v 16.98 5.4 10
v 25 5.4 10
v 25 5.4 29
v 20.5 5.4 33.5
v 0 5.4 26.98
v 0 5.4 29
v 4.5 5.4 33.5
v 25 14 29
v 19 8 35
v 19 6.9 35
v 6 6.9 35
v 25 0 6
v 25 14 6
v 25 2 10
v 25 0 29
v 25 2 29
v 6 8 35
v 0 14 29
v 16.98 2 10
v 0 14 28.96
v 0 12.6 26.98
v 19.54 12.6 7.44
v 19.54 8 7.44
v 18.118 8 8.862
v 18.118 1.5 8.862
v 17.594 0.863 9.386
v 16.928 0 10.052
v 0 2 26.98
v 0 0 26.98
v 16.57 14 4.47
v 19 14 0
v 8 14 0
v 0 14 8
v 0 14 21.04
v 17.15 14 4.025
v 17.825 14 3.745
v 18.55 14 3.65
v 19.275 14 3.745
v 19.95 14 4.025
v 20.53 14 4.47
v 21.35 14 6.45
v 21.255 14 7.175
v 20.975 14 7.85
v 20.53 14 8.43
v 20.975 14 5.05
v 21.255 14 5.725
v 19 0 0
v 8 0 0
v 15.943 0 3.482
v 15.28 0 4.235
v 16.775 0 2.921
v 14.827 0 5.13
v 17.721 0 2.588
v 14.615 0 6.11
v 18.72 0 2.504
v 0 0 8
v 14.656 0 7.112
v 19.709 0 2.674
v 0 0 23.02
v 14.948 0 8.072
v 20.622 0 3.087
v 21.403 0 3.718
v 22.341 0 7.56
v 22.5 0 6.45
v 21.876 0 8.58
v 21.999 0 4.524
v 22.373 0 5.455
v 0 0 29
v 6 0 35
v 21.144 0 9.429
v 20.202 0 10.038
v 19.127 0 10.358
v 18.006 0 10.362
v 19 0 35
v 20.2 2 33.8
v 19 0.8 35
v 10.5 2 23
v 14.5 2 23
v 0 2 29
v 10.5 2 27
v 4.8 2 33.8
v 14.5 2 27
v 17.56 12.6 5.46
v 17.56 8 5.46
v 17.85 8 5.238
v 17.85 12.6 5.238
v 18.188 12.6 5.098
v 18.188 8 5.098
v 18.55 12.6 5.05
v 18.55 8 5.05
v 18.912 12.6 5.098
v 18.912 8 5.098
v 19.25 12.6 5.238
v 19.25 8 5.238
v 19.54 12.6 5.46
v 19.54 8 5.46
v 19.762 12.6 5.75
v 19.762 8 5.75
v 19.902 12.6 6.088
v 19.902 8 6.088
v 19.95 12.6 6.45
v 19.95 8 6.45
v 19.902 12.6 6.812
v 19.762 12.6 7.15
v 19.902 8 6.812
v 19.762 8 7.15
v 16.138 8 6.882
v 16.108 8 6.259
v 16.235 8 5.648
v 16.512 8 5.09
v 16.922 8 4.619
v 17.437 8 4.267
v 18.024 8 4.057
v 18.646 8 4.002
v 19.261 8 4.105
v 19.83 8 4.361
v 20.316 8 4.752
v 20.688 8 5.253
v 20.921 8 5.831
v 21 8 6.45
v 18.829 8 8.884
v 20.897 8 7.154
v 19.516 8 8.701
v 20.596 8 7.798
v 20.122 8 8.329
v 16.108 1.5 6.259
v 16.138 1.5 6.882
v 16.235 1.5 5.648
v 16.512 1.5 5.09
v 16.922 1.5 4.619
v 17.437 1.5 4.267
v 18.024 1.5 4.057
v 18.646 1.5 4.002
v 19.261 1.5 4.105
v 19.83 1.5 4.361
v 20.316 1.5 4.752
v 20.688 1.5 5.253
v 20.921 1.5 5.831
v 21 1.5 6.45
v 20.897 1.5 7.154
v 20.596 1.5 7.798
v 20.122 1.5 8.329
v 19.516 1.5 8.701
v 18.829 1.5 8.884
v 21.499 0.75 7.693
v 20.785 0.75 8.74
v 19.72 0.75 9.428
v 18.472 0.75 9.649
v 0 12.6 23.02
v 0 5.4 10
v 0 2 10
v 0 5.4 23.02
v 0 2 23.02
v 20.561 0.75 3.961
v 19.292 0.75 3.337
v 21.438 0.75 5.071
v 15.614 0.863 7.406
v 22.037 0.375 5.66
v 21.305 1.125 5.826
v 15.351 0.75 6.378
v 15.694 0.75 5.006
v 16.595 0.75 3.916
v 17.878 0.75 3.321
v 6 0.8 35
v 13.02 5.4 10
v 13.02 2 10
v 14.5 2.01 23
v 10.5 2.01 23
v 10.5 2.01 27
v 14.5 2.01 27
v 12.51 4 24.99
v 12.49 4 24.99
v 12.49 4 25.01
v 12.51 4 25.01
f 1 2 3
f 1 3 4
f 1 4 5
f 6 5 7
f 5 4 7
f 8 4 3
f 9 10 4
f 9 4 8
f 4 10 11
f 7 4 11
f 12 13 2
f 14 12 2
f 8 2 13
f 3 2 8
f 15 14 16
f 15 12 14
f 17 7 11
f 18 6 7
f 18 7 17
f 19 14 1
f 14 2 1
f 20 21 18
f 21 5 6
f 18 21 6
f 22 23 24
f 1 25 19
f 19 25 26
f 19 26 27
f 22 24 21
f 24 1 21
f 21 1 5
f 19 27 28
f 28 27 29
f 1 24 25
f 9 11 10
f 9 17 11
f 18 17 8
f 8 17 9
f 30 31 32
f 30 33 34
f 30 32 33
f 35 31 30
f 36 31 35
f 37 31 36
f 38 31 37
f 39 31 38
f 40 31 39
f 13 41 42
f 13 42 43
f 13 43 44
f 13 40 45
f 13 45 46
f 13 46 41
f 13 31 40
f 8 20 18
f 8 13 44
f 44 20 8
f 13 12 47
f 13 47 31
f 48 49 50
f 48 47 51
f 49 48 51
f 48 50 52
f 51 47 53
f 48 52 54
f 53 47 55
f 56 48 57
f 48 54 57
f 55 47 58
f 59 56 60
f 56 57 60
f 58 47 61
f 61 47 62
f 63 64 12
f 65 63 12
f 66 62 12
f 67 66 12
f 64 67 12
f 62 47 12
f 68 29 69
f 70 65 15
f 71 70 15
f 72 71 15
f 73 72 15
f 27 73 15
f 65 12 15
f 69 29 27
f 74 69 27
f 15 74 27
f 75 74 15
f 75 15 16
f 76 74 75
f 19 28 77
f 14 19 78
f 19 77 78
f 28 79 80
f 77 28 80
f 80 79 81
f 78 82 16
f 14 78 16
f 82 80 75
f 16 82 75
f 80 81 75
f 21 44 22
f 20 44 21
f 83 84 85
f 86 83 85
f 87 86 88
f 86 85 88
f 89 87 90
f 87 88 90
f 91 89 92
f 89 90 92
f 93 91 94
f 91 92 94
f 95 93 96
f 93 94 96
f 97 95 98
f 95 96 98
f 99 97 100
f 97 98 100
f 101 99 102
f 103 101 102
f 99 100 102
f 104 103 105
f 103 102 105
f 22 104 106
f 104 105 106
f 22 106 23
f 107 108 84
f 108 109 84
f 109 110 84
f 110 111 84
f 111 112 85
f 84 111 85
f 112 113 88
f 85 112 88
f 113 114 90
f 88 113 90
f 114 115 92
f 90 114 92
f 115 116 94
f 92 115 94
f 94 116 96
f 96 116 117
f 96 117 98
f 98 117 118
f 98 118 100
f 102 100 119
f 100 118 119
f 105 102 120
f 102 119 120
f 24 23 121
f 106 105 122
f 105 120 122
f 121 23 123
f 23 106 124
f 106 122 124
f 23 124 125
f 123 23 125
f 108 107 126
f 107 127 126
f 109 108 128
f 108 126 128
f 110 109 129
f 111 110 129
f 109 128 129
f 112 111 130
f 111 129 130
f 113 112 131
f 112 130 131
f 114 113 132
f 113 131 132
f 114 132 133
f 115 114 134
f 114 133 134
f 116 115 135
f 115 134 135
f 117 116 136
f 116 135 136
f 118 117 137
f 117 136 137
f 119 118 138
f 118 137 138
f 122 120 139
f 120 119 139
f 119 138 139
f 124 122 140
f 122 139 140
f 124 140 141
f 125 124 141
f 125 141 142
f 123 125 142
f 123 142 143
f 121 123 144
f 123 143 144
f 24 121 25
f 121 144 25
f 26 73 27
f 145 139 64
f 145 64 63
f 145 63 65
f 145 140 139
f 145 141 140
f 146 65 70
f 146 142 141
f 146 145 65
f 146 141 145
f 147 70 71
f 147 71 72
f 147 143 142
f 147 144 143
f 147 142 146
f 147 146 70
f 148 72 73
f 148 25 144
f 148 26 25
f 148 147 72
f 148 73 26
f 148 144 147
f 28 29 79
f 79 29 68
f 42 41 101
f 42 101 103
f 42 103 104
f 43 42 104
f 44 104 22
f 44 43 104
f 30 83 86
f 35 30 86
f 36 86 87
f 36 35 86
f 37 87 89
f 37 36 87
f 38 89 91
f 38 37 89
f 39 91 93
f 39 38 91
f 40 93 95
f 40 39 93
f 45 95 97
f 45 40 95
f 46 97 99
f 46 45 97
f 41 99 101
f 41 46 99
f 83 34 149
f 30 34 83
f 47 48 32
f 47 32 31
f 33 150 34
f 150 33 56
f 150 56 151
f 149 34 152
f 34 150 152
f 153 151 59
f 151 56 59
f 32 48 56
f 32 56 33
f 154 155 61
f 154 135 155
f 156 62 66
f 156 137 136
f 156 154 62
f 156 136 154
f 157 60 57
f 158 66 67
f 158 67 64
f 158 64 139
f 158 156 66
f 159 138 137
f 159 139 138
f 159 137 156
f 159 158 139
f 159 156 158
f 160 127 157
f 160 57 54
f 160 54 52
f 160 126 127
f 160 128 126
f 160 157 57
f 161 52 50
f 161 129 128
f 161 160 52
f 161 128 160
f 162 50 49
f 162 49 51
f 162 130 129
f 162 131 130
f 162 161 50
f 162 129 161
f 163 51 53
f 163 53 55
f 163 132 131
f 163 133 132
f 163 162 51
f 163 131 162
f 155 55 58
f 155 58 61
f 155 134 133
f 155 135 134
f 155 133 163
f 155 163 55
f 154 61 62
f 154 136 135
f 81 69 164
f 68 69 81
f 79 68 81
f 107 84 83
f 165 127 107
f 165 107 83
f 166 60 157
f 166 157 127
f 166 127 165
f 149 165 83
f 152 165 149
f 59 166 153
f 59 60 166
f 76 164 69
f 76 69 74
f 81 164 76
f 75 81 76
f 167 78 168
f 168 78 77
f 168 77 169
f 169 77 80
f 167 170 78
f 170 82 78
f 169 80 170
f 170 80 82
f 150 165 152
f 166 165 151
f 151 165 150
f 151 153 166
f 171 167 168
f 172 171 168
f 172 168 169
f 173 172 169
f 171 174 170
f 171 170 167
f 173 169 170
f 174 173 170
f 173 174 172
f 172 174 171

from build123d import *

# Parameters (mm, degrees)
BOX_W           = 25
BOX_H           = 14
BOX_DEPTH       = 35
SKETCH_W        = 25
SKETCH_H        = 3.4
POCKET_DEPTH    = 25
SKETCH001_R     = 2.45
POCKET001_DEPTH = 8
SKETCH002_R     = 1.4
POCKET002_DEPTH = 6.001
SKETCH003_W     = 4
SKETCH003_H     = 4
PAD_DEPTH       = 4
CHAMFER_SIZE    = 1.99
POCKET003_DEPTH = 17
CHAMFER001_SIZE = 8
CHAMFER002_SIZE = 6
CHAMFER003_SIZE = 6
CHAMFER004_SIZE = 1.5
CHAMFER005_SIZE = 1.4
CHAMFER006_SIZE = 1.2
CHAMFER007_SIZE = 1.5


with BuildPart() as pocket002:
    # Box → Box (new body)
    with BuildSketch(Plane.XY):
        with Locations((12.5, 7)):
            Rectangle(BOX_W, BOX_H)
    extrude(amount=BOX_DEPTH)

    # Sketch → Pocket (cut)
    with BuildSketch(Plane.XY.offset(35)):
        with Locations((12.5, 3.7)):
            Rectangle(SKETCH_W, SKETCH_H)
    extrude(amount=-POCKET_DEPTH, mode=Mode.SUBTRACT)

    # Sketch001 → Pocket001 (cut)
    with BuildSketch(Plane.XZ):
        with Locations((18.55, 6.45)):
            Circle(SKETCH001_R)
    extrude(amount=-POCKET001_DEPTH, mode=Mode.SUBTRACT)

    # Sketch002 → Pocket002 (cut, through all)
    with BuildSketch(Plane.XZ.offset(-8)):
        with Locations((18.55, 6.45)):
            Circle(SKETCH002_R)
    extrude(amount=-POCKET002_DEPTH, mode=Mode.SUBTRACT)


with BuildPart() as chamfer007:
    # Sketch003 → Pad (new body)
    with BuildSketch(Plane.XZ):
        with Locations((12.5, 25)):
            Rectangle(SKETCH003_W, SKETCH003_H)
    extrude(amount=-PAD_DEPTH)

    # Chamfer
    chamfer_edges = [chamfer007.edges().sort_by_distance(p)[0] for p in [
        (12.5, 4, 23),
        (10.5, 4, 25),
        (12.5, 4, 27),
        (14.5, 4, 25),
    ]]
    chamfer(chamfer_edges, length=CHAMFER_SIZE)

    # Fusion: union Pocket002
    add(pocket002.part)

    # Sketch005 → Pocket003 (cut)
    with BuildSketch(Plane.XZ):
        with BuildLine():
            ThreePointArc((19.539949, 7.439949), (17.560051, 7.439949), (17.560051, 5.460051))
            Line((17.560051, 5.460051), (0, 23.020101))
            Line((0, 26.979899), (0, 23.020101))
            Line((19.539949, 7.439949), (0, 26.979899))
        make_face()
    extrude(amount=-POCKET003_DEPTH, mode=Mode.SUBTRACT)

    # Chamfer001
    chamfer001_edges = [chamfer007.edges().sort_by_distance(p)[0] for p in [
        (0, 7, 0),
    ]]
    chamfer(chamfer001_edges, length=CHAMFER001_SIZE)

    # Chamfer002
    chamfer002_edges = [chamfer007.edges().sort_by_distance(p)[0] for p in [
        (25, 7, 0),
    ]]
    chamfer(chamfer002_edges, length=CHAMFER002_SIZE)

    # Chamfer003
    chamfer003_edges = [chamfer007.edges().sort_by_distance(p)[0] for p in [
        (0, 9.7, 35),
        (25, 9.7, 35),
        (0, 1, 35),
        (25, 1, 35),
        (12.5, 14, 35),
    ]]
    chamfer(chamfer003_edges, length=CHAMFER003_SIZE)

    # Chamfer004
    chamfer004_edges = [chamfer007.edges().sort_by_distance(p)[0] for p in [
        (20.12237, 0, 8.32887),
    ]]
    chamfer(chamfer004_edges, length=CHAMFER004_SIZE)

    # Chamfer005
    chamfer005_edges = [chamfer007.edges().sort_by_distance(p)[0] for p in [
        (19.085757, 14, 5.156569),
    ]]
    chamfer(chamfer005_edges, length=CHAMFER005_SIZE)

    # Chamfer006
    chamfer006_edges = [chamfer007.edges().sort_by_distance(p)[0] for p in [
        (12.5, 2, 35),
    ]]
    chamfer(chamfer006_edges, length=CHAMFER006_SIZE)

    # Chamfer007
    chamfer007_edges = [chamfer007.edges().sort_by_distance(p)[0] for p in [
        (12.5, 5.4, 35),
    ]]
    chamfer(chamfer007_edges, length=CHAMFER007_SIZE)


solid = chamfer007.part
